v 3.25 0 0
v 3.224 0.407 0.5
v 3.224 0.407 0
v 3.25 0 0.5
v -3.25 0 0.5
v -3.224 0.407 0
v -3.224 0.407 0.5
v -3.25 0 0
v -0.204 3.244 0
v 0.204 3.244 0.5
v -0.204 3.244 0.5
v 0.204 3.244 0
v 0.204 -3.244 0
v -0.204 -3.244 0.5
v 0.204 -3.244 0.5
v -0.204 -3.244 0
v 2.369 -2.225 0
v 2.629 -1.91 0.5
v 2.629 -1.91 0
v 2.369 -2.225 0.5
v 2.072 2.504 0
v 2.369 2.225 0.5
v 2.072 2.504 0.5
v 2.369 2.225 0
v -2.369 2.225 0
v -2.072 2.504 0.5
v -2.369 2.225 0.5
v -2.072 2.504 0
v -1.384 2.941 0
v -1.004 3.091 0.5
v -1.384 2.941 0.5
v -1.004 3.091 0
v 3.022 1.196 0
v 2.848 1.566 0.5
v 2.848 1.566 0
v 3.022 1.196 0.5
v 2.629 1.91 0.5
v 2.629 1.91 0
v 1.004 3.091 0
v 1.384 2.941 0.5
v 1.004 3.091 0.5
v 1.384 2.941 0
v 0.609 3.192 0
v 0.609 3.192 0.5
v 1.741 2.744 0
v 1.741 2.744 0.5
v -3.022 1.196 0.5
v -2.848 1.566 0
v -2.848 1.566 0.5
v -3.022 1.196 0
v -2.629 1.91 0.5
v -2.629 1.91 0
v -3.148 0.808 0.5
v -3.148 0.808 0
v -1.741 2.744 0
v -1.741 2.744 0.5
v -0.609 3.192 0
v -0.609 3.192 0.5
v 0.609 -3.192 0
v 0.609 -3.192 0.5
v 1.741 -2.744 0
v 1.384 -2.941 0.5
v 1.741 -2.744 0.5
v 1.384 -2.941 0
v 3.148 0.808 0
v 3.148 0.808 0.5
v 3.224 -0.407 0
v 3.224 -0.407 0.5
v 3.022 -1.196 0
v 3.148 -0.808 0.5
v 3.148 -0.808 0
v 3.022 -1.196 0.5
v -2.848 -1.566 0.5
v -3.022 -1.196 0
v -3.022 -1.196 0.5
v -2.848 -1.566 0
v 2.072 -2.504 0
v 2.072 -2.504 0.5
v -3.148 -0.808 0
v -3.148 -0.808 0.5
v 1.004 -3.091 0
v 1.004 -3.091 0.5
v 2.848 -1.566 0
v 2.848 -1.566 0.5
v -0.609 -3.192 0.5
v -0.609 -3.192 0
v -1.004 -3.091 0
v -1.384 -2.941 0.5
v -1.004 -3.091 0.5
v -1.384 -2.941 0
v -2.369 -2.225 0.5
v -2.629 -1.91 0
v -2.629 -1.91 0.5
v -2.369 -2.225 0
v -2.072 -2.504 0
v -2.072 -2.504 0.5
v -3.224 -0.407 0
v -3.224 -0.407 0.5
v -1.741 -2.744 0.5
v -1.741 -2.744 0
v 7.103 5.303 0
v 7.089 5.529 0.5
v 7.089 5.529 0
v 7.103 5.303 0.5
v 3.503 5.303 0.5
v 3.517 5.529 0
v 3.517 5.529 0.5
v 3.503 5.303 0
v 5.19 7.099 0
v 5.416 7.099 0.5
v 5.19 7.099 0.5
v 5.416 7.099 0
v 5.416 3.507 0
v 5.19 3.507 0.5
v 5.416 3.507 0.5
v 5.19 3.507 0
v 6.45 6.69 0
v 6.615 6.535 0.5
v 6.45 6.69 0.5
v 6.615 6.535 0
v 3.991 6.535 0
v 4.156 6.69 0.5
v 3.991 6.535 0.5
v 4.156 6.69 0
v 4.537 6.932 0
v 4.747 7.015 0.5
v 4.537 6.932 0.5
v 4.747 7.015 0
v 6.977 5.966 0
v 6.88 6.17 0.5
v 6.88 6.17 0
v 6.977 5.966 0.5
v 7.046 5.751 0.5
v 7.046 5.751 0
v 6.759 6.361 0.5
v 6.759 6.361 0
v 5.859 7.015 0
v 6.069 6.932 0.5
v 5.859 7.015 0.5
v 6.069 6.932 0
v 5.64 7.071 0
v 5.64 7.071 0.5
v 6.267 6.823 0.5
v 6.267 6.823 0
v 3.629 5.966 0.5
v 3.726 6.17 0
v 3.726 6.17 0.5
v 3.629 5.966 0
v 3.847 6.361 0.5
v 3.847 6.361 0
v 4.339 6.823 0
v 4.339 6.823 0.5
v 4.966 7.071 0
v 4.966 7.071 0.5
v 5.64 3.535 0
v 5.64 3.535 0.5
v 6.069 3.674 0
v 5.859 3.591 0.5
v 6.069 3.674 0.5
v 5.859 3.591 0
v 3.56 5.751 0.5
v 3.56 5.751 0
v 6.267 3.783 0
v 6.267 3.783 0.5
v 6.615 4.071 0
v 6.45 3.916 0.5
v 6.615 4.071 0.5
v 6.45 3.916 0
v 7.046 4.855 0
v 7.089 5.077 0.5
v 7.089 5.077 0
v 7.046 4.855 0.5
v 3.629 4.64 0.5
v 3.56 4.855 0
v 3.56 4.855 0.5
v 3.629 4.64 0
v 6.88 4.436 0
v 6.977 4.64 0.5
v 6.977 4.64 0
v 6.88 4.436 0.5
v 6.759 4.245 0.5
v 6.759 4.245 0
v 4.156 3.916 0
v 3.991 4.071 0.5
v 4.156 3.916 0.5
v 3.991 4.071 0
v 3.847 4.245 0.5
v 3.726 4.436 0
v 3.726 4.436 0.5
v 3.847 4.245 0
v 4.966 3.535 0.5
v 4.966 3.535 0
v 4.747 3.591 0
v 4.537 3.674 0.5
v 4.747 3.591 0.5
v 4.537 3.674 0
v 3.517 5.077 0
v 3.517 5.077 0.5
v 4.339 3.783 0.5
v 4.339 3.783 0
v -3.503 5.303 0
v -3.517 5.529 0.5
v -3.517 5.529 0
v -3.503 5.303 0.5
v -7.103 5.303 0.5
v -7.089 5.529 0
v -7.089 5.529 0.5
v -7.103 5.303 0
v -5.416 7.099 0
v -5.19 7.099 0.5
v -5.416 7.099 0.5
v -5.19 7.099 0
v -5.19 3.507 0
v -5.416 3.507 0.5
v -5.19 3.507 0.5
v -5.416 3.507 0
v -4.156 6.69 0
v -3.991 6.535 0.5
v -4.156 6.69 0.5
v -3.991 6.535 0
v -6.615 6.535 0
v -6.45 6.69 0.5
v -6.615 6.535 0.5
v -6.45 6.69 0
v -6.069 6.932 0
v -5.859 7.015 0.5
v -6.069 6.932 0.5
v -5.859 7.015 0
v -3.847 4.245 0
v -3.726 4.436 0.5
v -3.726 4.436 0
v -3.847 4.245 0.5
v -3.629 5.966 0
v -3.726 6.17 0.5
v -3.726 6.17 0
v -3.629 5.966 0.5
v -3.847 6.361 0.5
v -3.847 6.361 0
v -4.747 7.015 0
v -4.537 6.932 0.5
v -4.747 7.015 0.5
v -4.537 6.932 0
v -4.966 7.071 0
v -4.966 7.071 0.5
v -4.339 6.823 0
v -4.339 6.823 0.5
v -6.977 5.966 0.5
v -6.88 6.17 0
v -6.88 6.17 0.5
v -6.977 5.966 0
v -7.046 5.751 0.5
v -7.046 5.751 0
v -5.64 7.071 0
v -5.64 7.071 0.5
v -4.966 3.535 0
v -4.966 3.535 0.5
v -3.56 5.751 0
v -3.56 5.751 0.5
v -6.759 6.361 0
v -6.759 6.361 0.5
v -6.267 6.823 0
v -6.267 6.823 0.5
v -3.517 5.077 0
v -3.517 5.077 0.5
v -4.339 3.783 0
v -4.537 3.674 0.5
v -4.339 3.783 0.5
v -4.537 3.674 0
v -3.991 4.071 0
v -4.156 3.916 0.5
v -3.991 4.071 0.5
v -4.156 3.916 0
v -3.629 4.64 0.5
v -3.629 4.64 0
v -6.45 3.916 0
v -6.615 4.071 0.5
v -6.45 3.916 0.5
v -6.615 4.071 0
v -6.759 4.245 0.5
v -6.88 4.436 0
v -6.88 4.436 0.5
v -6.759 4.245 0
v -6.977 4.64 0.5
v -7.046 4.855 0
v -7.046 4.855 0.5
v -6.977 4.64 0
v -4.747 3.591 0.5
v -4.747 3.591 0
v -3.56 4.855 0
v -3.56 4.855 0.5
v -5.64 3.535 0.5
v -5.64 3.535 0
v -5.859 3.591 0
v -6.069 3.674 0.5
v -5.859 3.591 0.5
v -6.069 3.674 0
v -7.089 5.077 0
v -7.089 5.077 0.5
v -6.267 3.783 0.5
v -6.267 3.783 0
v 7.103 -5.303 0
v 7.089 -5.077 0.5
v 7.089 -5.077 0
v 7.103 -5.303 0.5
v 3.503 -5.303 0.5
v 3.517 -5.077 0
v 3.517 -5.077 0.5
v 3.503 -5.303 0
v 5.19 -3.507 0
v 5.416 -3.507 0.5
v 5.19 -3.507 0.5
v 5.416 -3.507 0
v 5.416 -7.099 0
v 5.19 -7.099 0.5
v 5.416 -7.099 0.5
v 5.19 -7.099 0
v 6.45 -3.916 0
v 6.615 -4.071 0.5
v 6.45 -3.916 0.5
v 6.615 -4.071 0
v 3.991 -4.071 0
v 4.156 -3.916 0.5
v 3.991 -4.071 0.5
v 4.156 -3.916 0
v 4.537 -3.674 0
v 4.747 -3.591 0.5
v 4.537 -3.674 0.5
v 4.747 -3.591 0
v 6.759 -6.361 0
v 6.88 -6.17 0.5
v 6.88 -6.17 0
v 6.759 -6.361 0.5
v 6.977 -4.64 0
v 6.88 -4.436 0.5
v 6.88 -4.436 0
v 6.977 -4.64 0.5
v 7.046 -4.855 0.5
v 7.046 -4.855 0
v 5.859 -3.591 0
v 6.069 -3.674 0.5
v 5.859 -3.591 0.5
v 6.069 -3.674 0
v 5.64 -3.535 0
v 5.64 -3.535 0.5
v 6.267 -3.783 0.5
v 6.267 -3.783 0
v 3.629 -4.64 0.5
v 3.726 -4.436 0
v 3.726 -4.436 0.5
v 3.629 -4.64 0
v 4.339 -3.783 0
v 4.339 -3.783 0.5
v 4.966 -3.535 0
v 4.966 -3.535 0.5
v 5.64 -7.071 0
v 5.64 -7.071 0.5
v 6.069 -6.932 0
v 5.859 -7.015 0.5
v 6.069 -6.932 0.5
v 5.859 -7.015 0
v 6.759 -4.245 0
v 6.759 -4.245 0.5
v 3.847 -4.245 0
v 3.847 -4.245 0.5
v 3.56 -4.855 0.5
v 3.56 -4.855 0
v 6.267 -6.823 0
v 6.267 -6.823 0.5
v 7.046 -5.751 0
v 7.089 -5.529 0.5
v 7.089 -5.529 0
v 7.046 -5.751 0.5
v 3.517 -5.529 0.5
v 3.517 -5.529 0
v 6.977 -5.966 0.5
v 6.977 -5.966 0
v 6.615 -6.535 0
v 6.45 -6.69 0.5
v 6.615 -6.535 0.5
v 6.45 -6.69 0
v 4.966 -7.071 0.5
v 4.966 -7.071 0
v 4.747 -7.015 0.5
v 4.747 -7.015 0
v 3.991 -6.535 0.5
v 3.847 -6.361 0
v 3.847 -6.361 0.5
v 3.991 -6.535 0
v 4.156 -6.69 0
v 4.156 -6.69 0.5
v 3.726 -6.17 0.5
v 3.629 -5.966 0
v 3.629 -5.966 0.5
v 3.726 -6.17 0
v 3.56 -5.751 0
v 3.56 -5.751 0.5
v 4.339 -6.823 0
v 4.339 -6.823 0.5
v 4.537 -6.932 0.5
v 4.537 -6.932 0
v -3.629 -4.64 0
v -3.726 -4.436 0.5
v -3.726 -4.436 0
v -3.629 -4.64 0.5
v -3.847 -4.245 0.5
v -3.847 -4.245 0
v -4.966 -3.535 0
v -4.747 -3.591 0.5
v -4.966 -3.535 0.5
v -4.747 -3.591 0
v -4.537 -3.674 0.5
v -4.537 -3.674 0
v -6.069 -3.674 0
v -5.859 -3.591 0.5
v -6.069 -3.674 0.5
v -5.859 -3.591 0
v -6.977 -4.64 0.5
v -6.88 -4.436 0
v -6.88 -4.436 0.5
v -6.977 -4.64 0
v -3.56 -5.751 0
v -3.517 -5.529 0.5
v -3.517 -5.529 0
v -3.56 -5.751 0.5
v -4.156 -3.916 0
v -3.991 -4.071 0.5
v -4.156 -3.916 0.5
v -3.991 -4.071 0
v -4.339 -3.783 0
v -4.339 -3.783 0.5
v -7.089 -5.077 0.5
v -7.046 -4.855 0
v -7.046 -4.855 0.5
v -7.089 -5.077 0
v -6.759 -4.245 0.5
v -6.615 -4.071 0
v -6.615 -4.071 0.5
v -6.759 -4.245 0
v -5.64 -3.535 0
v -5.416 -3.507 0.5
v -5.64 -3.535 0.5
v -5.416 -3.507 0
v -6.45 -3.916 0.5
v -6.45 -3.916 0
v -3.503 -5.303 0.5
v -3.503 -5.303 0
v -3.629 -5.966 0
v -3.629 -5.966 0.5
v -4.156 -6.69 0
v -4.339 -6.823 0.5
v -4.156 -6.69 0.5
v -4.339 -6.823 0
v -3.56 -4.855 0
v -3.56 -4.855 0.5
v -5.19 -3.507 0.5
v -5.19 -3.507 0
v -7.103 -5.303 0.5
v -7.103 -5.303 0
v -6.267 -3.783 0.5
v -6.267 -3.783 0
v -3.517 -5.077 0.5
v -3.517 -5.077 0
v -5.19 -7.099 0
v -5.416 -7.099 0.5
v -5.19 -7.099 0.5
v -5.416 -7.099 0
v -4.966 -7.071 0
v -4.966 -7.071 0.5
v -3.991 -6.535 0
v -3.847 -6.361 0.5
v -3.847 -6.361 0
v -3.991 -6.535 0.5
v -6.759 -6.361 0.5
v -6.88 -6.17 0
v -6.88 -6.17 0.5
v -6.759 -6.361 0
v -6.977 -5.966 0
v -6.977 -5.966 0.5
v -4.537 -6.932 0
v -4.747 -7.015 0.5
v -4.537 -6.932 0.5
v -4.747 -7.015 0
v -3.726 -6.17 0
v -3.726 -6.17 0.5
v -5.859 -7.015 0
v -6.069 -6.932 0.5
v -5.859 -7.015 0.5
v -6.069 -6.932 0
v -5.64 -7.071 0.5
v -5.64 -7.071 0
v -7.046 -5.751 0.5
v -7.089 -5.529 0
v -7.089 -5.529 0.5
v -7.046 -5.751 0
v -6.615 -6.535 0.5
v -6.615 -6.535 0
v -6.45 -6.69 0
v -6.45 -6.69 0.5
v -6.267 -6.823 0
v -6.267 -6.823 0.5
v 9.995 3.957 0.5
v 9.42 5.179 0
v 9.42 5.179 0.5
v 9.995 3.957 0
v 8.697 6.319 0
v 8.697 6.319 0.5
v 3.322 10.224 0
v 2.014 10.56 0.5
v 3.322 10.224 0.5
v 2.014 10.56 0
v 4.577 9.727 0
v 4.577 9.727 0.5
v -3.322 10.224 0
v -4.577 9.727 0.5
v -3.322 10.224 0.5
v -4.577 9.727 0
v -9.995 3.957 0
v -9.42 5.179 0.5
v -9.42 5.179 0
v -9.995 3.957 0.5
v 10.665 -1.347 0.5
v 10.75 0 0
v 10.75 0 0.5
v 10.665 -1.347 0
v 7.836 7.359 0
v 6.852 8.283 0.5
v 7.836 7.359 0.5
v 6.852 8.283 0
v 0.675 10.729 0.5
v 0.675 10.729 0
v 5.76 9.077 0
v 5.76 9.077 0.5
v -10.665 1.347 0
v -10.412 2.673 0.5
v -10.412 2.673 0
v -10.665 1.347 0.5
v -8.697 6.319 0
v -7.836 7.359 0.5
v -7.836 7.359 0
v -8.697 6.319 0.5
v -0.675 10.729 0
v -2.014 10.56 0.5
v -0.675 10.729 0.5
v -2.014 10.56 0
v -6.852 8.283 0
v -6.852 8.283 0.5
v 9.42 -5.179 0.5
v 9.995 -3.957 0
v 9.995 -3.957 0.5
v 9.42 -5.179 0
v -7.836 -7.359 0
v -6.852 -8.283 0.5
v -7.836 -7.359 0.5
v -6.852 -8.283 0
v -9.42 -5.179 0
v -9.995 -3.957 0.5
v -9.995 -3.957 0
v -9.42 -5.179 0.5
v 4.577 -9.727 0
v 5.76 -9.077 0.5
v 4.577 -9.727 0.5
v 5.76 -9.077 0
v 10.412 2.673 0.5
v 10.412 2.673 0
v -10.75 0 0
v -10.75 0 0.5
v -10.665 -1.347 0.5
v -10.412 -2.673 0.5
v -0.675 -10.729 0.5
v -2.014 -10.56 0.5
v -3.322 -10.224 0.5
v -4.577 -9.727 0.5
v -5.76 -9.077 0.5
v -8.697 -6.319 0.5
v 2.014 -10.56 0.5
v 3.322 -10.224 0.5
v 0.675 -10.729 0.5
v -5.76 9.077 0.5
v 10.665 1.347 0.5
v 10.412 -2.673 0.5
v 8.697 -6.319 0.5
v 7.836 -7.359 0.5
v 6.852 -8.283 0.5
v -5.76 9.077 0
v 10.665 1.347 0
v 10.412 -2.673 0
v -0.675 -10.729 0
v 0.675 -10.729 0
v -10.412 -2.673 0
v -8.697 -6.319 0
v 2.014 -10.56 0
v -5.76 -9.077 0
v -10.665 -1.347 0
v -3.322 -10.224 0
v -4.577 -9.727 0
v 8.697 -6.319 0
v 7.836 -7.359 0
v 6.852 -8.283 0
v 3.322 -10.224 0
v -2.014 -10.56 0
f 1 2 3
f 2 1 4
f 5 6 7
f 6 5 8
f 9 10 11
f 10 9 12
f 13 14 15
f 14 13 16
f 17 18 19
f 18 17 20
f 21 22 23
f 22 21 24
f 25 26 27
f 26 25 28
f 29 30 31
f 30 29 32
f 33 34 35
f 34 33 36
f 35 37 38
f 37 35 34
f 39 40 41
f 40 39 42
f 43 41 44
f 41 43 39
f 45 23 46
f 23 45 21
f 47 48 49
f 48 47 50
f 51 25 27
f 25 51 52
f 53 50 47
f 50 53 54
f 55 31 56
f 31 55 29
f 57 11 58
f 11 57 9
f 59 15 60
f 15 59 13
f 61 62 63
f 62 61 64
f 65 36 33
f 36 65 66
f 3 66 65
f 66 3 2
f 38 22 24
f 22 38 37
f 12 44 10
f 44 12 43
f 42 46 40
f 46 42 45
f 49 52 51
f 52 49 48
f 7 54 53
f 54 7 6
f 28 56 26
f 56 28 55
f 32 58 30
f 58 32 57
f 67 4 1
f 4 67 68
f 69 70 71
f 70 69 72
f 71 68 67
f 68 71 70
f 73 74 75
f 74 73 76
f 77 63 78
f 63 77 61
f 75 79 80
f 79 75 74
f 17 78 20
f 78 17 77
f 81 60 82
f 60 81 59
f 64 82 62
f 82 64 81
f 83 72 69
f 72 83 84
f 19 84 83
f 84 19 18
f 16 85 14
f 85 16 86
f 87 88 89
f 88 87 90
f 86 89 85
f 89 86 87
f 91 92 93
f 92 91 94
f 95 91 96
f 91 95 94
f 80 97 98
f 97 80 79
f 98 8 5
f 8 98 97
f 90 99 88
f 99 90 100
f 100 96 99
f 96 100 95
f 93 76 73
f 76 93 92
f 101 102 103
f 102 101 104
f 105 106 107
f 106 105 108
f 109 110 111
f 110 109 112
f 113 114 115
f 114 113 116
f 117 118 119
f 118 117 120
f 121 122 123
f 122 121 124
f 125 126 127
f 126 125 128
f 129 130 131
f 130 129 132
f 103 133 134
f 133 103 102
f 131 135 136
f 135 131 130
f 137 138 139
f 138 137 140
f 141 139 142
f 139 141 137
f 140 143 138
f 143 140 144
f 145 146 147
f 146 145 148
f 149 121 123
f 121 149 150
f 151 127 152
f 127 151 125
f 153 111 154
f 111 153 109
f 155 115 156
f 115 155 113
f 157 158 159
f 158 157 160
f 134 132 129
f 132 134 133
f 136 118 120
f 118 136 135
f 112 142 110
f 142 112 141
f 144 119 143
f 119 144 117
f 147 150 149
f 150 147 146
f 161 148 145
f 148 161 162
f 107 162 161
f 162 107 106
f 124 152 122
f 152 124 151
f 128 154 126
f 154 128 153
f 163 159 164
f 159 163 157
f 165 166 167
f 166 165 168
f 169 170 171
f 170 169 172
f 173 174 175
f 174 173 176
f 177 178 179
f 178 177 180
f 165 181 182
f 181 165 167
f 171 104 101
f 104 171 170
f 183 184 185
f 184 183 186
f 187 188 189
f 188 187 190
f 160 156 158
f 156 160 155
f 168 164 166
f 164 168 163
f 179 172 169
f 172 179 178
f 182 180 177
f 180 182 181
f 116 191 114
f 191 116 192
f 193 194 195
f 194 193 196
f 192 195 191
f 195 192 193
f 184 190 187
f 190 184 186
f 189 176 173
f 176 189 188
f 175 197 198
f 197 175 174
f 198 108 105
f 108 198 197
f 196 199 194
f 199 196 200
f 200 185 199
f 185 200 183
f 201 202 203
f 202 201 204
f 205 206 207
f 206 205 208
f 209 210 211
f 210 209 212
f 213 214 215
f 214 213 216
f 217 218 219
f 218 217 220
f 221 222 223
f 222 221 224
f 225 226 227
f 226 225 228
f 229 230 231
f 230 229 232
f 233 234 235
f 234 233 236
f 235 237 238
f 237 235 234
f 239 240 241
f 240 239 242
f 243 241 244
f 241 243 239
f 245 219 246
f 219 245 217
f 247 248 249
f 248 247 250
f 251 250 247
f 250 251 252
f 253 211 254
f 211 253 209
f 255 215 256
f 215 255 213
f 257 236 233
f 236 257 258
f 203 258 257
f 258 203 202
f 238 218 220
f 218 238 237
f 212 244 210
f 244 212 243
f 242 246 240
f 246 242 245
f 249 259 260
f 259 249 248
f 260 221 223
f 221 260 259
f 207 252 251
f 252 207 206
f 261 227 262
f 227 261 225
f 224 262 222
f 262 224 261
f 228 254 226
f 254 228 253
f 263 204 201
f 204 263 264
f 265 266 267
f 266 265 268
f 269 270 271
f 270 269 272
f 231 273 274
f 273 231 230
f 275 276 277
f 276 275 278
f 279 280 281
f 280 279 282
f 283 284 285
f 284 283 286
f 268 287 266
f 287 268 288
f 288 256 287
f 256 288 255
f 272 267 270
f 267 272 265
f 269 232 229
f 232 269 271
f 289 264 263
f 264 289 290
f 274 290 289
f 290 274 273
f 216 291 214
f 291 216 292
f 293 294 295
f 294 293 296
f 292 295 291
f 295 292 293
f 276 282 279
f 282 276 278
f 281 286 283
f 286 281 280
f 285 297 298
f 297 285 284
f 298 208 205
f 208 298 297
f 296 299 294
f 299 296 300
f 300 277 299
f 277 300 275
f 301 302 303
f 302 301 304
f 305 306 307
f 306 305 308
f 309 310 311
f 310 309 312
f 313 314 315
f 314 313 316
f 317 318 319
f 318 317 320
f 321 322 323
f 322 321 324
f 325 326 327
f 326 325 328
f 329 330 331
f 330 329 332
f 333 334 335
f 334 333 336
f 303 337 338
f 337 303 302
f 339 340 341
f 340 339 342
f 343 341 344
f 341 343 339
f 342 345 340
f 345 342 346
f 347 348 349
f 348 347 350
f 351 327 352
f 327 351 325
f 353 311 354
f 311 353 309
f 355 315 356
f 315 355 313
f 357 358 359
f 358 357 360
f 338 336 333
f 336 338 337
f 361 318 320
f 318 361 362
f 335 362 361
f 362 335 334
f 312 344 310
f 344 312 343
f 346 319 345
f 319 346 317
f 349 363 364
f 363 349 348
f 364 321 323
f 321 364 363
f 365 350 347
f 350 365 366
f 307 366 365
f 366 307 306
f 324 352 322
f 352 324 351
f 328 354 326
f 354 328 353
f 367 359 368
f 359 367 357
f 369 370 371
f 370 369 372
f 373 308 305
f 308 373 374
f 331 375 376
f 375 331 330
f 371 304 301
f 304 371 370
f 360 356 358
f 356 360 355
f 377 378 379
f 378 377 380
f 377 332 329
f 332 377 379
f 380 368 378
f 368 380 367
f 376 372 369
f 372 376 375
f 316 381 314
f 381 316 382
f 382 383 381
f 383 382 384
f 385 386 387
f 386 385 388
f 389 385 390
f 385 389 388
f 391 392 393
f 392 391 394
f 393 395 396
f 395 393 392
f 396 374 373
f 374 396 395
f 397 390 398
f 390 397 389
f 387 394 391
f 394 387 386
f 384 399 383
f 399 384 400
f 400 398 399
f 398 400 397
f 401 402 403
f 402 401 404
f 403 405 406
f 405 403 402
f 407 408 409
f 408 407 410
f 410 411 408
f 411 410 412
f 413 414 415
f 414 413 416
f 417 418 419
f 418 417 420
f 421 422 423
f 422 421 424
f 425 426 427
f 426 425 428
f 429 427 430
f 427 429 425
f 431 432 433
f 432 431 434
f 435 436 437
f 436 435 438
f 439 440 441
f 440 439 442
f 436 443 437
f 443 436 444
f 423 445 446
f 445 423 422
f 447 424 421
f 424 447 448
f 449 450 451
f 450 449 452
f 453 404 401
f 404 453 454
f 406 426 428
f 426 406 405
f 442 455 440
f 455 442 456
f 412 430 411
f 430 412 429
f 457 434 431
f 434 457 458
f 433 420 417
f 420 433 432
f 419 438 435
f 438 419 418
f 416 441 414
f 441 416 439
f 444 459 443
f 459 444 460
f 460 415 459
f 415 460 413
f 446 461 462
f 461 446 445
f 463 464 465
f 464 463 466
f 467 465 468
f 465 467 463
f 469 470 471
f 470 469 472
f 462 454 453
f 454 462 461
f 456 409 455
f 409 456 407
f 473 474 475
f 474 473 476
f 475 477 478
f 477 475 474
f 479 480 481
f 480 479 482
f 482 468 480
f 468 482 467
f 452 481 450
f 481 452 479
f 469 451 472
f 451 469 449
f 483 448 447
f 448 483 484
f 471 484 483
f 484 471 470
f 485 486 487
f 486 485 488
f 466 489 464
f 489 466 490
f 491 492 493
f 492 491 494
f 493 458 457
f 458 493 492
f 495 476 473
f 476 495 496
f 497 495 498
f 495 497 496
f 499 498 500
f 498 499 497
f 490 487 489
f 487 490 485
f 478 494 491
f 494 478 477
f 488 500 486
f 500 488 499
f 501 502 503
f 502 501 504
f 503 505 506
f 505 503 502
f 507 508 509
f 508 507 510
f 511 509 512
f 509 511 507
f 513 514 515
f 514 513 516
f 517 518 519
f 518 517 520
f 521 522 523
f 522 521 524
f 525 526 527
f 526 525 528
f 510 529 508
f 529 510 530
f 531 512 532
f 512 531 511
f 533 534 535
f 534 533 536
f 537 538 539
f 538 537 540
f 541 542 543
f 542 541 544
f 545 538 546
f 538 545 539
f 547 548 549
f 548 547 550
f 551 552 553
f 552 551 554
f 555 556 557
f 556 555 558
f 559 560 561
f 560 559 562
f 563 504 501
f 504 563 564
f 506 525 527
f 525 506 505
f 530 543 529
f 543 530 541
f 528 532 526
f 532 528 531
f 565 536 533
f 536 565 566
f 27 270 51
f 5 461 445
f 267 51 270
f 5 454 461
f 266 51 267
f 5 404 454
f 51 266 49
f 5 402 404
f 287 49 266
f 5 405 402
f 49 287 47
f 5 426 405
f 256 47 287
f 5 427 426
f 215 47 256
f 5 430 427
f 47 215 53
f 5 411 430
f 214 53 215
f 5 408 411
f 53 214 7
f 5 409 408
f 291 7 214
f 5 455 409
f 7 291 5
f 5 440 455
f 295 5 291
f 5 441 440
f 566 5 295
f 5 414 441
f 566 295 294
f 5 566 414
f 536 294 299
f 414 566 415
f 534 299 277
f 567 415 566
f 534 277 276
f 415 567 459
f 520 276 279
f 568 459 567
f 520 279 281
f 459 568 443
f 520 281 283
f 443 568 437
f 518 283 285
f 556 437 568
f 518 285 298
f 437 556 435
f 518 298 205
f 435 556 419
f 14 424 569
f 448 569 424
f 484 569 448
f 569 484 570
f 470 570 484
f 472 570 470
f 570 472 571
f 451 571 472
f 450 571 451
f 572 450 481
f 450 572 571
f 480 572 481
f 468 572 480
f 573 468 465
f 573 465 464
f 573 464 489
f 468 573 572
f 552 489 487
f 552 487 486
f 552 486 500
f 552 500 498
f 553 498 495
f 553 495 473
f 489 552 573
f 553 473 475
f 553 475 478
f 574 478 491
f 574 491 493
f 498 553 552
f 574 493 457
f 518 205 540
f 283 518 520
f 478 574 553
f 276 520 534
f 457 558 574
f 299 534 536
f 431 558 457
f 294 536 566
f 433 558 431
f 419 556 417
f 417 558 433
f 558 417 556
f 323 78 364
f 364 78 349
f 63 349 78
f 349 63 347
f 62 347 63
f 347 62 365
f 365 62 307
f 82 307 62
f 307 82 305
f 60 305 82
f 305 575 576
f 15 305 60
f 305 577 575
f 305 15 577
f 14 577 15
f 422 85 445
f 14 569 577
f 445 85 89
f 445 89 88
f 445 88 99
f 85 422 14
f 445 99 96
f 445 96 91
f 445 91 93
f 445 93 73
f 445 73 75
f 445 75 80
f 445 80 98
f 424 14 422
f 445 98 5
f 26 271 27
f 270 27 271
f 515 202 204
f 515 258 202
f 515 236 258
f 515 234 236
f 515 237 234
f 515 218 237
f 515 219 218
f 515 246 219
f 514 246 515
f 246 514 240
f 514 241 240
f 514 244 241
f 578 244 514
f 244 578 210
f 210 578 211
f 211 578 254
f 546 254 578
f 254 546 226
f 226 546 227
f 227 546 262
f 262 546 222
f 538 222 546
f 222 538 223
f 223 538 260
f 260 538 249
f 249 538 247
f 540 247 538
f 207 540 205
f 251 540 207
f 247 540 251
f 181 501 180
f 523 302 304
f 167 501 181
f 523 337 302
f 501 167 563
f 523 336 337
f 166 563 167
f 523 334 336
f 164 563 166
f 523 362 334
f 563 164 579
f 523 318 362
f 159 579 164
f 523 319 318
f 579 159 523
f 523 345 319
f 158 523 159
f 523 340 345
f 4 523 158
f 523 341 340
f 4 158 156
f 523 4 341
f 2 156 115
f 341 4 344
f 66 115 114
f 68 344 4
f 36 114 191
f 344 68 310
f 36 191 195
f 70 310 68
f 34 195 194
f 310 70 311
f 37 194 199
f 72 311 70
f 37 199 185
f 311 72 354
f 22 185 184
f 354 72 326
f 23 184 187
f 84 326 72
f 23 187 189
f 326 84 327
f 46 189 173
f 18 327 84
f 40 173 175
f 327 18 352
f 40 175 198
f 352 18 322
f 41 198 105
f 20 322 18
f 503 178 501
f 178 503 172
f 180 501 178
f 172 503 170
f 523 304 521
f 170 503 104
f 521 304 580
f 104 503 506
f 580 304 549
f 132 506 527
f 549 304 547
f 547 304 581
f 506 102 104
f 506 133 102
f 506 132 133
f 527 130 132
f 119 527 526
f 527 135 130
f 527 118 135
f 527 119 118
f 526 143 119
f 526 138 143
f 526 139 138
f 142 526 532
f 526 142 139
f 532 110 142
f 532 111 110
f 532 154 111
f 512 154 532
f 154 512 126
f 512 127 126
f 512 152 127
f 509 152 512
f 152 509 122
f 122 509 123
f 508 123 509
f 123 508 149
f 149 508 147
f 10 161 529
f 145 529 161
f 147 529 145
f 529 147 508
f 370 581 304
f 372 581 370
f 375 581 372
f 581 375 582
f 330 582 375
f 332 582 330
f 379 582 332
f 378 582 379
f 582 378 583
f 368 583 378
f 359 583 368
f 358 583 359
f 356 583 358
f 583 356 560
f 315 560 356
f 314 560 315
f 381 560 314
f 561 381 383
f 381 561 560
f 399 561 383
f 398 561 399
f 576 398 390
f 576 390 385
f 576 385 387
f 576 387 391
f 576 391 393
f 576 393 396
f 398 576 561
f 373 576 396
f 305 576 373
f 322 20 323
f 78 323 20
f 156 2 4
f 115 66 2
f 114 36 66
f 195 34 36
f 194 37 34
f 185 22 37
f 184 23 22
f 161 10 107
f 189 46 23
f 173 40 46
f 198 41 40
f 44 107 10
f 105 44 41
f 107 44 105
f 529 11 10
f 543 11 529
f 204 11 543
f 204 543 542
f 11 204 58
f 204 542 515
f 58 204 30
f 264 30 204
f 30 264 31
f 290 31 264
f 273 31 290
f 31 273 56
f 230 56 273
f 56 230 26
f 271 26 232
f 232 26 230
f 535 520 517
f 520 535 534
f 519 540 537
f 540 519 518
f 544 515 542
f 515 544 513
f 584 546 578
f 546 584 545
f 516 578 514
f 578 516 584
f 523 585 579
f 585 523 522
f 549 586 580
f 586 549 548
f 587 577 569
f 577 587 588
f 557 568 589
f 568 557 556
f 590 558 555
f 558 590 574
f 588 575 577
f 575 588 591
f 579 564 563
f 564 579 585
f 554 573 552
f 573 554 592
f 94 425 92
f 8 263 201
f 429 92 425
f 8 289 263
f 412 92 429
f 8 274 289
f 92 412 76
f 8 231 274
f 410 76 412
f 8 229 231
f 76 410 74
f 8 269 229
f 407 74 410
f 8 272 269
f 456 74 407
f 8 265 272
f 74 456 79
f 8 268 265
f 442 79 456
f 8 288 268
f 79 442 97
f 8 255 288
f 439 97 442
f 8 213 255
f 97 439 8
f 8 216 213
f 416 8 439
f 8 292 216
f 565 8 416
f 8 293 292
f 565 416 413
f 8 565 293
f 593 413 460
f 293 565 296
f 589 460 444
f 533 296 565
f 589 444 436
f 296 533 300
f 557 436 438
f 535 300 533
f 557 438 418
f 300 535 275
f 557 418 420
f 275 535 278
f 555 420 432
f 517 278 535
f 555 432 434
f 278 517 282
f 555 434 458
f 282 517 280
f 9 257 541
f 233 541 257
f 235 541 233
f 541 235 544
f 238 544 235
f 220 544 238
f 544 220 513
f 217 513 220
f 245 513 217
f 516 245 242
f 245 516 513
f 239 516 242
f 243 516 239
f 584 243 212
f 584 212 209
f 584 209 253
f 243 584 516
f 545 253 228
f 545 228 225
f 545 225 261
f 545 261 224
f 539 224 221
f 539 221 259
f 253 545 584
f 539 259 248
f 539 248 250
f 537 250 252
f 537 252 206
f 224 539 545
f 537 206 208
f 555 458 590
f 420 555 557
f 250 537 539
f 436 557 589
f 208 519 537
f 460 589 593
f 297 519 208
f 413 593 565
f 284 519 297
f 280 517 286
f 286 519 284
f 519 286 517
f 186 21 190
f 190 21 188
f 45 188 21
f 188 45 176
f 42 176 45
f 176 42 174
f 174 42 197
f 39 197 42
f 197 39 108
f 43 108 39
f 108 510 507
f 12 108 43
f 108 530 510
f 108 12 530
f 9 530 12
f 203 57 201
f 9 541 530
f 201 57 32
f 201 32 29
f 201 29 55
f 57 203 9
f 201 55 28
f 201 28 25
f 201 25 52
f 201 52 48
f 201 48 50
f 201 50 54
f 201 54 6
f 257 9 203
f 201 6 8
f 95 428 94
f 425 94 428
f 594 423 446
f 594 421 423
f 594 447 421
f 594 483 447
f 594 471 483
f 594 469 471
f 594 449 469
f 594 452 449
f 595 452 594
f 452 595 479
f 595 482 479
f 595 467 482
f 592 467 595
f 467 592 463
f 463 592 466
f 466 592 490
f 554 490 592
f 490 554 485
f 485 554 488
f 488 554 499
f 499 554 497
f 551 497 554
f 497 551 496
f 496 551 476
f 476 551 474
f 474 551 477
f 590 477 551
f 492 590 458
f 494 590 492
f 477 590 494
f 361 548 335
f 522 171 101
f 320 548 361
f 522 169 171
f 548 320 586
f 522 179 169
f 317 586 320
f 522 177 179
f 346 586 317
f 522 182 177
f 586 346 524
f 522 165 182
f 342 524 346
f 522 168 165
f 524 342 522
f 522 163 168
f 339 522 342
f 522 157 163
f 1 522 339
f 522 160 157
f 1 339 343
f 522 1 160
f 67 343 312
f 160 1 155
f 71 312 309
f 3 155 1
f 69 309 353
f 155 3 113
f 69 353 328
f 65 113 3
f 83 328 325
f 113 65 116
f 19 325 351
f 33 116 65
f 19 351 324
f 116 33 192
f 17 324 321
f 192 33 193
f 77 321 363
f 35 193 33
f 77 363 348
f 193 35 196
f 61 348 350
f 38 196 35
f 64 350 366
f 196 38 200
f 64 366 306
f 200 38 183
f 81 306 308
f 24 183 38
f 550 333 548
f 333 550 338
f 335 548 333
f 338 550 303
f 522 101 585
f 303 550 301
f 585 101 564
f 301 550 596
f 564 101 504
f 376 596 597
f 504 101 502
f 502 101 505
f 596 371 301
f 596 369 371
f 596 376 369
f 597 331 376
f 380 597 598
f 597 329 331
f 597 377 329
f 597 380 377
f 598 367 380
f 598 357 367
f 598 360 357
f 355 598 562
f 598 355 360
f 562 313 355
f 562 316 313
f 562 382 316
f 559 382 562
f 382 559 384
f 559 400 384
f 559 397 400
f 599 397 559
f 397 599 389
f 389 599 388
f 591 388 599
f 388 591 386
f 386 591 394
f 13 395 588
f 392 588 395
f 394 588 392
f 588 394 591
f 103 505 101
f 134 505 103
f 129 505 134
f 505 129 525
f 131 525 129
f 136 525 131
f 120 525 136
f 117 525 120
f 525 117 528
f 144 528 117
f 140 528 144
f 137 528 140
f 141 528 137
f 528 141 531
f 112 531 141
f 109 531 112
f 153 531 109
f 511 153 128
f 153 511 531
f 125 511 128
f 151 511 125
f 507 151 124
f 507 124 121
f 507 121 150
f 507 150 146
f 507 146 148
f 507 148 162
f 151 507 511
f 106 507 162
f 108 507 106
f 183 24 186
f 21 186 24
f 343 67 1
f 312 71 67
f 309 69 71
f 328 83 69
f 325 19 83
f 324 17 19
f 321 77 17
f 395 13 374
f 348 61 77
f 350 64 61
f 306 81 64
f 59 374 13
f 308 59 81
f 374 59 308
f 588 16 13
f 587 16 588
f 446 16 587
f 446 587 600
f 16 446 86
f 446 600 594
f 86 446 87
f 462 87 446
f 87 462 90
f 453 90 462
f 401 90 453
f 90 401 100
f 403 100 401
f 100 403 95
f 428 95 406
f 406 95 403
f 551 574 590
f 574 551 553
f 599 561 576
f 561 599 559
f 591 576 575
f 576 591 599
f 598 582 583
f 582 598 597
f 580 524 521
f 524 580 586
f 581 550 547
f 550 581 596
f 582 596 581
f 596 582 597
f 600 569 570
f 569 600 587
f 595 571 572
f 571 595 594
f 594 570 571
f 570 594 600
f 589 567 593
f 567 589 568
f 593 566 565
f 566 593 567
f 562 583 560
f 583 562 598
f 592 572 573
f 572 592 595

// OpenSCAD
$fn = 50;


difference() {
	union() {
		*color(alpha = 1.0000000000, c = "gray") {
			translate(v = [0, 7, 0]) {
				linear_extrude(height = 1) {
					text(font = "Arial:style=Bold", halign = "center", size = 4.5000000000, text = "COMMENT circle main", valign = "center");
				}
			}
		}
		cylinder(h = 0.5000000000, r = 10.7500000000);
	}
	union() {
		*color(alpha = 1.0000000000, c = "gray") {
			translate(v = [0, 7, 0]) {
				linear_extrude(height = 1) {
					text(font = "Arial:style=Bold", halign = "center", size = 4.5000000000, text = "COMMENT holes main", valign = "center");
				}
			}
		}
		translate(v = [0.0000000000, 0.0000000000, -50.0000000000]) {
			cylinder(h = 100, r = 3.2500000000);
		}
		translate(v = [0.0000000000, 0.0000000000, -50.0000000000]) {
			cylinder(h = 100, r = 3.2500000000);
		}
		translate(v = [0.0000000000, 0.0000000000, -50.0000000000]) {
			cylinder(h = 100, r = 3.2500000000);
		}
		translate(v = [0.0000000000, 0.0000000000, -50.0000000000]) {
			cylinder(h = 100, r = 1.8000000000);
		}
		translate(v = [0.0000000000, 0.0000000000, -50.0000000000]) {
			cylinder(h = 100, r = 1.8000000000);
		}
		translate(v = [0.0000000000, 0.0000000000, -50.0000000000]) {
			cylinder(h = 100, r = 1.8000000000);
		}
		#translate(v = [5.3030000000, 5.3030000000, -50.0000000000]) {
			cylinder(h = 100, r = 1.8000000000);
		}
		#translate(v = [-5.3030000000, 5.3030000000, -50.0000000000]) {
			cylinder(h = 100, r = 1.8000000000);
		}
		#translate(v = [5.3030000000, -5.3030000000, -50.0000000000]) {
			cylinder(h = 100, r = 1.8000000000);
		}
		#translate(v = [-5.3030000000, -5.3030000000, -50.0000000000]) {
			cylinder(h = 100, r = 1.8000000000);
		}
	}
}
